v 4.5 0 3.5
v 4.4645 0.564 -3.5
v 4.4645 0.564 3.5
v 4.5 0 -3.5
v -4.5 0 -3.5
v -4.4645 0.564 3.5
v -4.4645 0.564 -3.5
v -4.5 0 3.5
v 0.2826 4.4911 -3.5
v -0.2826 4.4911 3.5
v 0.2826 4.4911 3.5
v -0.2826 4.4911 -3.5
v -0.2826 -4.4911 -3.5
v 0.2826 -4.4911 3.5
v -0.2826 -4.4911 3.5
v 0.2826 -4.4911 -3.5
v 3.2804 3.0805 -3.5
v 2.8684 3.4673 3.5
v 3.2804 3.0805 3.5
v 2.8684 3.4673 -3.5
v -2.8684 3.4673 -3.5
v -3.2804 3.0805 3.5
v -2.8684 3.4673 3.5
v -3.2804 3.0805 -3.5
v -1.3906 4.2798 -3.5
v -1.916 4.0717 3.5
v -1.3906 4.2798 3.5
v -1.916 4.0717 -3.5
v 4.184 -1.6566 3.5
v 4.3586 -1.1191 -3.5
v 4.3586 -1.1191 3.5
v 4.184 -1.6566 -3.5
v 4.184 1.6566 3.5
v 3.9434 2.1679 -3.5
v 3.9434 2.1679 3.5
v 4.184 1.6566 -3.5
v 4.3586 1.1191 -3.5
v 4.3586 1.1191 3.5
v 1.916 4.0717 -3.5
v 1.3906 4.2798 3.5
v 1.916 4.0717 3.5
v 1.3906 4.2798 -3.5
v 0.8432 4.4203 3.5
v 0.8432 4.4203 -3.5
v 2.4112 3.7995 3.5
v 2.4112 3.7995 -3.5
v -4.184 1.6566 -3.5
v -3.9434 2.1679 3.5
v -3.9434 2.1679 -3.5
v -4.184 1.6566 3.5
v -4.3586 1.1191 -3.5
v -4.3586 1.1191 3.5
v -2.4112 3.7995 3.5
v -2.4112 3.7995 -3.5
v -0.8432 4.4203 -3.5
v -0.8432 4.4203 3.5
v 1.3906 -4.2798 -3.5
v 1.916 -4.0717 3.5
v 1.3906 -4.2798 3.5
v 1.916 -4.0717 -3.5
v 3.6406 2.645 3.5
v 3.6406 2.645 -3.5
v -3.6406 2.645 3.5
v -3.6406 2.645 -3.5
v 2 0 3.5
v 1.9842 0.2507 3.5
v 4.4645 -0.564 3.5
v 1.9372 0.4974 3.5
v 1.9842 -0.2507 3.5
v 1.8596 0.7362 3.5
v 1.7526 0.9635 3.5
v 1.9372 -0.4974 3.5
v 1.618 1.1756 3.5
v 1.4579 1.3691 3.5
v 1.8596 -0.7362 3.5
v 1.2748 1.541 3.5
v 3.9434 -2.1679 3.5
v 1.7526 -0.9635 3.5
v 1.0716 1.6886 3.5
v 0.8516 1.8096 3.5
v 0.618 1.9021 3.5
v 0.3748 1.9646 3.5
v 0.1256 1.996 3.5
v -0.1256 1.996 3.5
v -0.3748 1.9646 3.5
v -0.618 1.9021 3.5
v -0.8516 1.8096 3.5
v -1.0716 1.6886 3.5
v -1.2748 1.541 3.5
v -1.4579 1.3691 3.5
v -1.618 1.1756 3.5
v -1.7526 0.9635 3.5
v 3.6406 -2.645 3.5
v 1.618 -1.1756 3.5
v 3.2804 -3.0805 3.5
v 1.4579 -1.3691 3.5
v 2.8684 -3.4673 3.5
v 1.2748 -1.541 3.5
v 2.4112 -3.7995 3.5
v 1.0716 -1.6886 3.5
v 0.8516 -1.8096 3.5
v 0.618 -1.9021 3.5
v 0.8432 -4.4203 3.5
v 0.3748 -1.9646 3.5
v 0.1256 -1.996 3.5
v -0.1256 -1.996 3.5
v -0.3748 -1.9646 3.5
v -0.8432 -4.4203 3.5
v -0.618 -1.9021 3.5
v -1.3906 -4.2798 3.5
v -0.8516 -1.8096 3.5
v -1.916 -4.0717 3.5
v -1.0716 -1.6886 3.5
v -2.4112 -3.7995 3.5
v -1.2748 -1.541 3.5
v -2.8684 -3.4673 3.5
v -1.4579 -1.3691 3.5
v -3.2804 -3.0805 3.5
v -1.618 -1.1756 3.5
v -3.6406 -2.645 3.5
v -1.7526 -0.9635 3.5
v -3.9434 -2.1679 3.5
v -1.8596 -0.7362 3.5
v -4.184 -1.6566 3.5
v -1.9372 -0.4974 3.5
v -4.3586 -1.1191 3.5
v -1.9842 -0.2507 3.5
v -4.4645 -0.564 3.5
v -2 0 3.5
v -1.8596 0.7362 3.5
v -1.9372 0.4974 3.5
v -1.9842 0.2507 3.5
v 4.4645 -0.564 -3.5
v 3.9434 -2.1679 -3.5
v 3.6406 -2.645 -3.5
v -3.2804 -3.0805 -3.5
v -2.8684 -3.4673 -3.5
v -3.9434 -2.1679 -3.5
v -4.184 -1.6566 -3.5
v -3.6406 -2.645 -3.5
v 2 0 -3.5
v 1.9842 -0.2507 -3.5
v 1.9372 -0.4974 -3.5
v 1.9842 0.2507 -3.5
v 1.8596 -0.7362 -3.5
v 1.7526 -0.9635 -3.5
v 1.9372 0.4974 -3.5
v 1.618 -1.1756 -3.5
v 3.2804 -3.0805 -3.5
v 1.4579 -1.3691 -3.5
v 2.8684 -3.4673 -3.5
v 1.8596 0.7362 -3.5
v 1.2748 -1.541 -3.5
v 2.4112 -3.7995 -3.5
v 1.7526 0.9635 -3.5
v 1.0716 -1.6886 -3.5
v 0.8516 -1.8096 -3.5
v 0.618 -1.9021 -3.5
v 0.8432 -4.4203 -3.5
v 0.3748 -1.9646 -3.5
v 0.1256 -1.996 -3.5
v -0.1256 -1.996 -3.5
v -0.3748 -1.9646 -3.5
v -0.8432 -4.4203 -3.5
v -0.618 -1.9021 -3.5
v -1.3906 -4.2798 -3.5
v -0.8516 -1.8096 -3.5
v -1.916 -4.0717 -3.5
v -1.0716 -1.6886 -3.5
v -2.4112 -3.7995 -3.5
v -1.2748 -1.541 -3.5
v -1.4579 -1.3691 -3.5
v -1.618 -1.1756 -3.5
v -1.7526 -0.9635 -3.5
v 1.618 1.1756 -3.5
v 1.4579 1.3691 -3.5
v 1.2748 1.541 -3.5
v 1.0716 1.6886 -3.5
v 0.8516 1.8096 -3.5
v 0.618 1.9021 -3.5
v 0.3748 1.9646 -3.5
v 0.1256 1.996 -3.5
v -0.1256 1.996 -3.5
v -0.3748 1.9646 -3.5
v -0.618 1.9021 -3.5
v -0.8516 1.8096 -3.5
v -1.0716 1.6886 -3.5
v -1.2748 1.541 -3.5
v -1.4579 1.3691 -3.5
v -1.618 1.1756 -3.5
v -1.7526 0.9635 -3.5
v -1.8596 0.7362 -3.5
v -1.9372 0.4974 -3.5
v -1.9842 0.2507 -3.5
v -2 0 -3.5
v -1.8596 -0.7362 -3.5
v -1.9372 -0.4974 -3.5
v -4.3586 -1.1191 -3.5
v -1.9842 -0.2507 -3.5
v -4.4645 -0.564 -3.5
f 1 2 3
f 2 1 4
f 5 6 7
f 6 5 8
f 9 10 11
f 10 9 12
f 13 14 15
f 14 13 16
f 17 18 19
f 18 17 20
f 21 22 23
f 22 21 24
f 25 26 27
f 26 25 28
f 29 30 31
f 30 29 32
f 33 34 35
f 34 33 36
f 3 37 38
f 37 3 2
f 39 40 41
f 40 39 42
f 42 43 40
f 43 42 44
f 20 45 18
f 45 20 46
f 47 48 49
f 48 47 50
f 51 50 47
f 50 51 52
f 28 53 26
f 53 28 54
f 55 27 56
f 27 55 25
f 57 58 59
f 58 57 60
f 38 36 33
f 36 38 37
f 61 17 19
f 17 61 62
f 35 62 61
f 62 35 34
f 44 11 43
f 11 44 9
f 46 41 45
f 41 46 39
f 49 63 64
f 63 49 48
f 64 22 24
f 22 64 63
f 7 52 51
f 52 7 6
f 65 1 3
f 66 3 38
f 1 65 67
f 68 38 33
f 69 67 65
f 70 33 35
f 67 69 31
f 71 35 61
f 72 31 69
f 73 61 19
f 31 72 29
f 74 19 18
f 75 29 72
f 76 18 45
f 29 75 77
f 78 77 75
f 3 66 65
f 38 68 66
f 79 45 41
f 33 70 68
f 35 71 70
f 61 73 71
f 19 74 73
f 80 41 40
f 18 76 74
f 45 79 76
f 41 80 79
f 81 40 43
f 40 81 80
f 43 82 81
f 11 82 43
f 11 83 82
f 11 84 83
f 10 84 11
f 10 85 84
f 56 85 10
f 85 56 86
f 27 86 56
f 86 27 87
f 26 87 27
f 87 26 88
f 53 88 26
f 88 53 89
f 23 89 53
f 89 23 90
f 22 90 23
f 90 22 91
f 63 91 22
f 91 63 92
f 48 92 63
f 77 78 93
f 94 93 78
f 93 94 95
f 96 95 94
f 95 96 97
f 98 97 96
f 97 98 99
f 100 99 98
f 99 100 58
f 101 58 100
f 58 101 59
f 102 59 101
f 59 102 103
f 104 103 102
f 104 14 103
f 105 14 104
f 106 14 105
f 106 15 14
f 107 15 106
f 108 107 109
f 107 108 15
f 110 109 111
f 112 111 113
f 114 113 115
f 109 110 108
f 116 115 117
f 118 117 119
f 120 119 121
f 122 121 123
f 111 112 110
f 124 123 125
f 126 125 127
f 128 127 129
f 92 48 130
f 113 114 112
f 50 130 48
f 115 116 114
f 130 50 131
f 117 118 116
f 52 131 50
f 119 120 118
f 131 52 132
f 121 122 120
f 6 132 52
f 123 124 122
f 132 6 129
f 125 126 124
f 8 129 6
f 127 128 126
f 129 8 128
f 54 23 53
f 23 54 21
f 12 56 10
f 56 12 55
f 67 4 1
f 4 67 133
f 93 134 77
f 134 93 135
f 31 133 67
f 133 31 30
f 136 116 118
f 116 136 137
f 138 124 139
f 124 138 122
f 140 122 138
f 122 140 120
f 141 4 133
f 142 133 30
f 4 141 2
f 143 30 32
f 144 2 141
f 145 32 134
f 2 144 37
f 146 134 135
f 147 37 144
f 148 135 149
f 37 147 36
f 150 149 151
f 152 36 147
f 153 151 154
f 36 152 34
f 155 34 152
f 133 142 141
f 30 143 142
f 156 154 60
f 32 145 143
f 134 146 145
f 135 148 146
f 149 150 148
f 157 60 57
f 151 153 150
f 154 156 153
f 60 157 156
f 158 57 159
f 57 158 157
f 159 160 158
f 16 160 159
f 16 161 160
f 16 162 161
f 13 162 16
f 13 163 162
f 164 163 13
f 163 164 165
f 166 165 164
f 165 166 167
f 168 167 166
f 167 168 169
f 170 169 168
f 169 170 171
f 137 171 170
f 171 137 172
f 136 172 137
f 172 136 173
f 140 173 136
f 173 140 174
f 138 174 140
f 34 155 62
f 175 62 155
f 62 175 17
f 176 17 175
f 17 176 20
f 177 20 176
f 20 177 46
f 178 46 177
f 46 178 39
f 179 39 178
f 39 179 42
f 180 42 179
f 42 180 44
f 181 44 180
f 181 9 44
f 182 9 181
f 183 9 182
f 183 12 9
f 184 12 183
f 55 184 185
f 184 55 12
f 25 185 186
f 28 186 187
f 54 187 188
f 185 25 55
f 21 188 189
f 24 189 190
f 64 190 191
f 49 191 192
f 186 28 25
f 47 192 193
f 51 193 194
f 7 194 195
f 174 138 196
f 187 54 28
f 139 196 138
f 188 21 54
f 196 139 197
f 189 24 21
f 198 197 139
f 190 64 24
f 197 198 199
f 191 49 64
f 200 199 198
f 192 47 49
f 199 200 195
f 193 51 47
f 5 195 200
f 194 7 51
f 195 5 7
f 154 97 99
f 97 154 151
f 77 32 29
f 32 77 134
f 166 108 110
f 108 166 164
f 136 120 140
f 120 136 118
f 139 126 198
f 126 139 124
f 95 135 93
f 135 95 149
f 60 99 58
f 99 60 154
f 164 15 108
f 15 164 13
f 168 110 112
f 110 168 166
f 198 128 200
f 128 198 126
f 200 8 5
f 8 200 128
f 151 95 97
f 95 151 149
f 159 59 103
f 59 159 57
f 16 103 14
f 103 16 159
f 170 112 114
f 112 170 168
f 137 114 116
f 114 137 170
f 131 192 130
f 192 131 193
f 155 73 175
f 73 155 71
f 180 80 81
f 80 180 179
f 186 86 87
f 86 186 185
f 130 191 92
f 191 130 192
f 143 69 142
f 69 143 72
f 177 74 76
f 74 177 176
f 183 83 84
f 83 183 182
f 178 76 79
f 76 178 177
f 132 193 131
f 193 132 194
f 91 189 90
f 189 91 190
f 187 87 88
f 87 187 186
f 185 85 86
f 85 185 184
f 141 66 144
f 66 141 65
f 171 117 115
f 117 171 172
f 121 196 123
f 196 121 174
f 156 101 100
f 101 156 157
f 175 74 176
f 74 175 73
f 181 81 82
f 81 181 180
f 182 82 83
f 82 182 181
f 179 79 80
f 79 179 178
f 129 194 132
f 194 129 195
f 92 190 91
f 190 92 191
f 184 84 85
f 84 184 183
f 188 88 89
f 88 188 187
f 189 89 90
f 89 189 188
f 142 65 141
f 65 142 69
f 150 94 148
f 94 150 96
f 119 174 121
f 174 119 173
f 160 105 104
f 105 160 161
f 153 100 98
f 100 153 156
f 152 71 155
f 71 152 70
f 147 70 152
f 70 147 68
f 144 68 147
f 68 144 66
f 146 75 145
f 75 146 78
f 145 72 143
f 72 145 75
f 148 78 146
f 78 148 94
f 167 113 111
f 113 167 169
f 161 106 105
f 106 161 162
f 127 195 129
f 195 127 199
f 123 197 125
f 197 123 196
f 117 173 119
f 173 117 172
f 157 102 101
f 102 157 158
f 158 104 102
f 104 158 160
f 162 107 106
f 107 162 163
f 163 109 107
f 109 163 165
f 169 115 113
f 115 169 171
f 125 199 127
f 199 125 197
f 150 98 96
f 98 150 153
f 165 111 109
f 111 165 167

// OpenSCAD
$fn = 50;


difference() {
	union() {
		translate(v = [0, 0, -3.5000000000]) {
			cylinder(h = 7, r = 4.5000000000);
		}
	}
	union() {
		translate(v = [0, 0, -100.0000000000]) {
			cylinder(h = 200, r = 2);
		}
	}
}
